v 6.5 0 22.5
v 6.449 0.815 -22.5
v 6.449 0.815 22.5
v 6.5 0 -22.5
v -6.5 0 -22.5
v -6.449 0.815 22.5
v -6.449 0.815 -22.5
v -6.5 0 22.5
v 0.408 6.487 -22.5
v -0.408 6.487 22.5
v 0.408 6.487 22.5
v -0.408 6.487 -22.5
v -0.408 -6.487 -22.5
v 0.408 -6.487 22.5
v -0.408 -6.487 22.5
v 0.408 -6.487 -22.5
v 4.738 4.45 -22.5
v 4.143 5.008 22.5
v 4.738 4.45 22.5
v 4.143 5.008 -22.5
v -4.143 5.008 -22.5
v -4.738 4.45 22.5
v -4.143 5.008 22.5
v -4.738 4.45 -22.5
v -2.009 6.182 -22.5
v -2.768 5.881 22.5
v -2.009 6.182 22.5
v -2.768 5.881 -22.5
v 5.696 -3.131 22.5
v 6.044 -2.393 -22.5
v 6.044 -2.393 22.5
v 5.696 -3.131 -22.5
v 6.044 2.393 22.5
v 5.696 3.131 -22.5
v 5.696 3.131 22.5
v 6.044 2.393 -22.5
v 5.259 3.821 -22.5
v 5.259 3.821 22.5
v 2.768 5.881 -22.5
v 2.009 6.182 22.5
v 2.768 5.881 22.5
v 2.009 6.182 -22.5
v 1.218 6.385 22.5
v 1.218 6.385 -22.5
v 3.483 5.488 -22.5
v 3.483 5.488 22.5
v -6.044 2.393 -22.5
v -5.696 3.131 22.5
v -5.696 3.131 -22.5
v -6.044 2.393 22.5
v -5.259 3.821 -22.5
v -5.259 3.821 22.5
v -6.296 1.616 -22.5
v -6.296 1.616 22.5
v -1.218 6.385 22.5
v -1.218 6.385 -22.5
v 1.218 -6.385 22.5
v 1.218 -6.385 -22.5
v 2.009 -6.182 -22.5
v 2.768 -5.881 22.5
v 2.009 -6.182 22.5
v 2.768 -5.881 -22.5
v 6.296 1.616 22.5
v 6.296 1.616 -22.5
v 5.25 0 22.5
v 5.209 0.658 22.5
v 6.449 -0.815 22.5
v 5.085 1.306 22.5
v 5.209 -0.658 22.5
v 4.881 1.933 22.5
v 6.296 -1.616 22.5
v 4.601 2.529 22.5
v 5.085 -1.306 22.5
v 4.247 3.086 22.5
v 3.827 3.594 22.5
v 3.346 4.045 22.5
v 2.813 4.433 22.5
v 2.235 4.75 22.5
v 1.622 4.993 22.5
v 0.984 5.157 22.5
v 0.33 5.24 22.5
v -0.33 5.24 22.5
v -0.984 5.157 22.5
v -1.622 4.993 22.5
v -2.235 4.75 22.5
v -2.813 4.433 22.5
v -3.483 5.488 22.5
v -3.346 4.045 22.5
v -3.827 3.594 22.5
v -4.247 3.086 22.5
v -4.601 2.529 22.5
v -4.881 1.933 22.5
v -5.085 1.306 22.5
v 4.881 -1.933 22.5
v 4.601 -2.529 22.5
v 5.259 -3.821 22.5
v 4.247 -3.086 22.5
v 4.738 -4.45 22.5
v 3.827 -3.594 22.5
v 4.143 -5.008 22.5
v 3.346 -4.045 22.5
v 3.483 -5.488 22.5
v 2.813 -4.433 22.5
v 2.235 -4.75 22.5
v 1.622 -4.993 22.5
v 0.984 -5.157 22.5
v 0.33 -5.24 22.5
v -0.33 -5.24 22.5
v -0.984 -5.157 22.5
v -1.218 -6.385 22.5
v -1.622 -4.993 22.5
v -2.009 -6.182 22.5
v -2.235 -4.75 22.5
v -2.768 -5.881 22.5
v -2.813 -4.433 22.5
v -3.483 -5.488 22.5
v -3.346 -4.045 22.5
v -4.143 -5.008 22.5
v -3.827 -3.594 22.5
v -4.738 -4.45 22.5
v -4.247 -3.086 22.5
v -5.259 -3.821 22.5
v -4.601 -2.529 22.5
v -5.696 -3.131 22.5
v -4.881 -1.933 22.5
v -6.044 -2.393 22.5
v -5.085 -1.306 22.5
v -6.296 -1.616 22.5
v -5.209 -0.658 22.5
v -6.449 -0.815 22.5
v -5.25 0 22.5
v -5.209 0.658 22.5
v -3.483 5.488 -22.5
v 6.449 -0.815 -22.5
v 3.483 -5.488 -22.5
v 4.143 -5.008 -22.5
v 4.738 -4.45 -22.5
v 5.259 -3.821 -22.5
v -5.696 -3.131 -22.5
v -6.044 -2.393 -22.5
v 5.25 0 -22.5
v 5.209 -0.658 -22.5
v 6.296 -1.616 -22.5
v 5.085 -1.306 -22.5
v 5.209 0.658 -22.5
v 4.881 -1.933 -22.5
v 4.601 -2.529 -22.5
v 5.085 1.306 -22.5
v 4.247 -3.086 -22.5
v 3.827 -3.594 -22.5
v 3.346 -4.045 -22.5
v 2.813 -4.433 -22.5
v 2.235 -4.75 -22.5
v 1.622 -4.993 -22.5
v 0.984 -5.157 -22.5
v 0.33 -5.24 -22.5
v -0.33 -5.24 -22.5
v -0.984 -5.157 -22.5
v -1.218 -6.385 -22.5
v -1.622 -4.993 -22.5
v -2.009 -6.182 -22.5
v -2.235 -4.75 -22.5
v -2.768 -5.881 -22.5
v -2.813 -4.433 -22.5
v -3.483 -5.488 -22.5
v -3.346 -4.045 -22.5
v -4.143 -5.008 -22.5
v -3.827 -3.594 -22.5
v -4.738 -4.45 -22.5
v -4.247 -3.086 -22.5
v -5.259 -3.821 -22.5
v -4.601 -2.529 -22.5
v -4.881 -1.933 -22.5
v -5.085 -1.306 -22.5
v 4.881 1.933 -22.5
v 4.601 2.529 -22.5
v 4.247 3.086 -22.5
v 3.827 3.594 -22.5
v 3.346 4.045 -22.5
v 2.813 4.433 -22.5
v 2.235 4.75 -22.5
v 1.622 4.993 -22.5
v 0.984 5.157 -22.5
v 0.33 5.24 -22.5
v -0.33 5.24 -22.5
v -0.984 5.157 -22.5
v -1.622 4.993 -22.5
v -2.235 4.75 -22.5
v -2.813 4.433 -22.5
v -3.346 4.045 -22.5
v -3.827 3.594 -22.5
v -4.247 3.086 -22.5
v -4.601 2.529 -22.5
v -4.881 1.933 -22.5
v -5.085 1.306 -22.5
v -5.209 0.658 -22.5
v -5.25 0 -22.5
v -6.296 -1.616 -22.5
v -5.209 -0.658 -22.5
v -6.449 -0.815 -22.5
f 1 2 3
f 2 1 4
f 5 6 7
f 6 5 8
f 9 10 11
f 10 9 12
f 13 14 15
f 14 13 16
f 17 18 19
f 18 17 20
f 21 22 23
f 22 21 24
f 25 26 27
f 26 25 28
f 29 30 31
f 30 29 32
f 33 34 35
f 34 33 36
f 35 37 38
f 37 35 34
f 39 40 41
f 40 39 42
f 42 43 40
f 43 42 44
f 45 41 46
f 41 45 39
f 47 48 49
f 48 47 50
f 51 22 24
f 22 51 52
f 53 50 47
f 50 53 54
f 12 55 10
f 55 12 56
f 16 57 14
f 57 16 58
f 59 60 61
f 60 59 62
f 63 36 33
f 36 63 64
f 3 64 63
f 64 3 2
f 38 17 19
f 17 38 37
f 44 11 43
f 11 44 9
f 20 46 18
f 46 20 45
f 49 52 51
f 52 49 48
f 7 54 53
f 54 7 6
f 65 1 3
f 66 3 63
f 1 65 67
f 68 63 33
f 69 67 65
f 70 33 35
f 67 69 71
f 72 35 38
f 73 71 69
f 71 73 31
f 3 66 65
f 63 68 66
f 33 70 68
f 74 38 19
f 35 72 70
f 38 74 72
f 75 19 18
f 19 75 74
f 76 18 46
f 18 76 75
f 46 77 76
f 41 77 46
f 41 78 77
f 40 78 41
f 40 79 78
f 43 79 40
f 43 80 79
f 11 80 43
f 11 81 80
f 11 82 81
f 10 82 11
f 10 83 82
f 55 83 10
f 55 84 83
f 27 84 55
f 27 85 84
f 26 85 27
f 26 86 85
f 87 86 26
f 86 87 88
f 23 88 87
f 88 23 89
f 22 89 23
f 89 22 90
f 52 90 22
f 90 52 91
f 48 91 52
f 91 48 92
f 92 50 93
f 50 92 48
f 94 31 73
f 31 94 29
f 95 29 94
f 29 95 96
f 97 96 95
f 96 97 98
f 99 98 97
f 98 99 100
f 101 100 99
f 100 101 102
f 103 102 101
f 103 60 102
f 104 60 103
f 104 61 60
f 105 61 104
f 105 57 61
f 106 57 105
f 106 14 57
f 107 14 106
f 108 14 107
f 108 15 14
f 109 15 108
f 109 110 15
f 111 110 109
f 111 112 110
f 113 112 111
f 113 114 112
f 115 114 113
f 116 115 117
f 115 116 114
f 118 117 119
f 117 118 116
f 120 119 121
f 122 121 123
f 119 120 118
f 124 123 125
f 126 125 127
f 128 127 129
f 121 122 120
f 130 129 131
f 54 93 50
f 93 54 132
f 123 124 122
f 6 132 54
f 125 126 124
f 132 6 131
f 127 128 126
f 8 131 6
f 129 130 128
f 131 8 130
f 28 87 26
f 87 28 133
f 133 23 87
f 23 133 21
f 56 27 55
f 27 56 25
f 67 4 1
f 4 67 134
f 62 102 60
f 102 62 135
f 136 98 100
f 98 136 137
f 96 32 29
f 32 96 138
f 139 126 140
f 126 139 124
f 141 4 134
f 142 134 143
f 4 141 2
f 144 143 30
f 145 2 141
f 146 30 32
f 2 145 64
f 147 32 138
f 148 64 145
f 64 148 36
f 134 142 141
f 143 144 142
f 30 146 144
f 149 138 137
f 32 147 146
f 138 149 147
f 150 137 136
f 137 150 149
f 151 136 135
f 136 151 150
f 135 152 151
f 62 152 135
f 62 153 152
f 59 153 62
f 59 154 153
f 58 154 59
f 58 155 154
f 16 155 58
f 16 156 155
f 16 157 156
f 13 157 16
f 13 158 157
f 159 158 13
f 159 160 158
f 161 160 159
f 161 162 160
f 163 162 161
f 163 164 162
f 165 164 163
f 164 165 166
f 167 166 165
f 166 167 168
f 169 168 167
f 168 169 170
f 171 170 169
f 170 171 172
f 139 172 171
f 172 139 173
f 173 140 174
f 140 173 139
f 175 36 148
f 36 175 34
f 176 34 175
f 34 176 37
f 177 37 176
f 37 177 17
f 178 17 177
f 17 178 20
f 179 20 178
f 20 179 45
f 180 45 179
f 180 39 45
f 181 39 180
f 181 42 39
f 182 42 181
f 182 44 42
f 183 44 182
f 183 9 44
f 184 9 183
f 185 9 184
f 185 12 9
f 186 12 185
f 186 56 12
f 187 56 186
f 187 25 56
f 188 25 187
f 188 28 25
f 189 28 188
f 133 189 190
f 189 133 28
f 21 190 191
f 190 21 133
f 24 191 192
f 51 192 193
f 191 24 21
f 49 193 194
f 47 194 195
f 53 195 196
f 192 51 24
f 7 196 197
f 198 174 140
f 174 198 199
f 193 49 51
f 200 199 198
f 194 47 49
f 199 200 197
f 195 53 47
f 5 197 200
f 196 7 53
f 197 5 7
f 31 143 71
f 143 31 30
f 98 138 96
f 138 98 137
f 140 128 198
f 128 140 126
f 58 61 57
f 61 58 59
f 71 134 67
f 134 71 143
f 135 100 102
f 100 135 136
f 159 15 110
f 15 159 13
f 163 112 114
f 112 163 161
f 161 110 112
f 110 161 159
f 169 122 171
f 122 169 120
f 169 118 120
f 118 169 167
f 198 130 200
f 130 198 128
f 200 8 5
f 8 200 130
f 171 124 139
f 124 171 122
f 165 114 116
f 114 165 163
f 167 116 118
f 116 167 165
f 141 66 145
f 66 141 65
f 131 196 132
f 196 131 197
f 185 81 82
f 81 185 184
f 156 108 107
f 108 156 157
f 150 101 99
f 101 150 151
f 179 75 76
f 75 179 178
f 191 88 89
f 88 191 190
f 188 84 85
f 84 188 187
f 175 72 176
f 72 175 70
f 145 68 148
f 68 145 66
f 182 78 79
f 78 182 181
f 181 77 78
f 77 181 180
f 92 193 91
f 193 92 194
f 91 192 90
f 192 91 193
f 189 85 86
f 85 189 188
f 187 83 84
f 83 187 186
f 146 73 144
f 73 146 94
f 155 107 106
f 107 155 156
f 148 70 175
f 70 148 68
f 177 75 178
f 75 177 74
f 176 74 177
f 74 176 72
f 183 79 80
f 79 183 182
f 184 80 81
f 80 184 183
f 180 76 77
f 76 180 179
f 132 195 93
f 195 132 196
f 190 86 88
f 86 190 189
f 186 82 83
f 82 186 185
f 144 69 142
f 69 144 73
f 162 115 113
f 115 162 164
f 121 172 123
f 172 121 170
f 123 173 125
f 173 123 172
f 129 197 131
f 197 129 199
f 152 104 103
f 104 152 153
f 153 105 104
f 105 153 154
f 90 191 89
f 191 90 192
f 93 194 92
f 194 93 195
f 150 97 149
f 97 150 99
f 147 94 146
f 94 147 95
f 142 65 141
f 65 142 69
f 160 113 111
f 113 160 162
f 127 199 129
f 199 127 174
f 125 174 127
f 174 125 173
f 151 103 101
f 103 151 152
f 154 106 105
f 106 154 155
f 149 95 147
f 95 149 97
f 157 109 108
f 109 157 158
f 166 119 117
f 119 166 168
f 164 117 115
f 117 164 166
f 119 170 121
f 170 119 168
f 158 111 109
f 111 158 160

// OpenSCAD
$fn = 50;


difference() {
	union() {
		translate(v = [0, 0, -22.5000000000]) {
			cylinder(h = 45, r = 6.5000000000);
		}
	}
	union() {
		translate(v = [0, 0, -100.0000000000]) {
			cylinder(h = 200, r = 5.2500000000);
		}
	}
}
